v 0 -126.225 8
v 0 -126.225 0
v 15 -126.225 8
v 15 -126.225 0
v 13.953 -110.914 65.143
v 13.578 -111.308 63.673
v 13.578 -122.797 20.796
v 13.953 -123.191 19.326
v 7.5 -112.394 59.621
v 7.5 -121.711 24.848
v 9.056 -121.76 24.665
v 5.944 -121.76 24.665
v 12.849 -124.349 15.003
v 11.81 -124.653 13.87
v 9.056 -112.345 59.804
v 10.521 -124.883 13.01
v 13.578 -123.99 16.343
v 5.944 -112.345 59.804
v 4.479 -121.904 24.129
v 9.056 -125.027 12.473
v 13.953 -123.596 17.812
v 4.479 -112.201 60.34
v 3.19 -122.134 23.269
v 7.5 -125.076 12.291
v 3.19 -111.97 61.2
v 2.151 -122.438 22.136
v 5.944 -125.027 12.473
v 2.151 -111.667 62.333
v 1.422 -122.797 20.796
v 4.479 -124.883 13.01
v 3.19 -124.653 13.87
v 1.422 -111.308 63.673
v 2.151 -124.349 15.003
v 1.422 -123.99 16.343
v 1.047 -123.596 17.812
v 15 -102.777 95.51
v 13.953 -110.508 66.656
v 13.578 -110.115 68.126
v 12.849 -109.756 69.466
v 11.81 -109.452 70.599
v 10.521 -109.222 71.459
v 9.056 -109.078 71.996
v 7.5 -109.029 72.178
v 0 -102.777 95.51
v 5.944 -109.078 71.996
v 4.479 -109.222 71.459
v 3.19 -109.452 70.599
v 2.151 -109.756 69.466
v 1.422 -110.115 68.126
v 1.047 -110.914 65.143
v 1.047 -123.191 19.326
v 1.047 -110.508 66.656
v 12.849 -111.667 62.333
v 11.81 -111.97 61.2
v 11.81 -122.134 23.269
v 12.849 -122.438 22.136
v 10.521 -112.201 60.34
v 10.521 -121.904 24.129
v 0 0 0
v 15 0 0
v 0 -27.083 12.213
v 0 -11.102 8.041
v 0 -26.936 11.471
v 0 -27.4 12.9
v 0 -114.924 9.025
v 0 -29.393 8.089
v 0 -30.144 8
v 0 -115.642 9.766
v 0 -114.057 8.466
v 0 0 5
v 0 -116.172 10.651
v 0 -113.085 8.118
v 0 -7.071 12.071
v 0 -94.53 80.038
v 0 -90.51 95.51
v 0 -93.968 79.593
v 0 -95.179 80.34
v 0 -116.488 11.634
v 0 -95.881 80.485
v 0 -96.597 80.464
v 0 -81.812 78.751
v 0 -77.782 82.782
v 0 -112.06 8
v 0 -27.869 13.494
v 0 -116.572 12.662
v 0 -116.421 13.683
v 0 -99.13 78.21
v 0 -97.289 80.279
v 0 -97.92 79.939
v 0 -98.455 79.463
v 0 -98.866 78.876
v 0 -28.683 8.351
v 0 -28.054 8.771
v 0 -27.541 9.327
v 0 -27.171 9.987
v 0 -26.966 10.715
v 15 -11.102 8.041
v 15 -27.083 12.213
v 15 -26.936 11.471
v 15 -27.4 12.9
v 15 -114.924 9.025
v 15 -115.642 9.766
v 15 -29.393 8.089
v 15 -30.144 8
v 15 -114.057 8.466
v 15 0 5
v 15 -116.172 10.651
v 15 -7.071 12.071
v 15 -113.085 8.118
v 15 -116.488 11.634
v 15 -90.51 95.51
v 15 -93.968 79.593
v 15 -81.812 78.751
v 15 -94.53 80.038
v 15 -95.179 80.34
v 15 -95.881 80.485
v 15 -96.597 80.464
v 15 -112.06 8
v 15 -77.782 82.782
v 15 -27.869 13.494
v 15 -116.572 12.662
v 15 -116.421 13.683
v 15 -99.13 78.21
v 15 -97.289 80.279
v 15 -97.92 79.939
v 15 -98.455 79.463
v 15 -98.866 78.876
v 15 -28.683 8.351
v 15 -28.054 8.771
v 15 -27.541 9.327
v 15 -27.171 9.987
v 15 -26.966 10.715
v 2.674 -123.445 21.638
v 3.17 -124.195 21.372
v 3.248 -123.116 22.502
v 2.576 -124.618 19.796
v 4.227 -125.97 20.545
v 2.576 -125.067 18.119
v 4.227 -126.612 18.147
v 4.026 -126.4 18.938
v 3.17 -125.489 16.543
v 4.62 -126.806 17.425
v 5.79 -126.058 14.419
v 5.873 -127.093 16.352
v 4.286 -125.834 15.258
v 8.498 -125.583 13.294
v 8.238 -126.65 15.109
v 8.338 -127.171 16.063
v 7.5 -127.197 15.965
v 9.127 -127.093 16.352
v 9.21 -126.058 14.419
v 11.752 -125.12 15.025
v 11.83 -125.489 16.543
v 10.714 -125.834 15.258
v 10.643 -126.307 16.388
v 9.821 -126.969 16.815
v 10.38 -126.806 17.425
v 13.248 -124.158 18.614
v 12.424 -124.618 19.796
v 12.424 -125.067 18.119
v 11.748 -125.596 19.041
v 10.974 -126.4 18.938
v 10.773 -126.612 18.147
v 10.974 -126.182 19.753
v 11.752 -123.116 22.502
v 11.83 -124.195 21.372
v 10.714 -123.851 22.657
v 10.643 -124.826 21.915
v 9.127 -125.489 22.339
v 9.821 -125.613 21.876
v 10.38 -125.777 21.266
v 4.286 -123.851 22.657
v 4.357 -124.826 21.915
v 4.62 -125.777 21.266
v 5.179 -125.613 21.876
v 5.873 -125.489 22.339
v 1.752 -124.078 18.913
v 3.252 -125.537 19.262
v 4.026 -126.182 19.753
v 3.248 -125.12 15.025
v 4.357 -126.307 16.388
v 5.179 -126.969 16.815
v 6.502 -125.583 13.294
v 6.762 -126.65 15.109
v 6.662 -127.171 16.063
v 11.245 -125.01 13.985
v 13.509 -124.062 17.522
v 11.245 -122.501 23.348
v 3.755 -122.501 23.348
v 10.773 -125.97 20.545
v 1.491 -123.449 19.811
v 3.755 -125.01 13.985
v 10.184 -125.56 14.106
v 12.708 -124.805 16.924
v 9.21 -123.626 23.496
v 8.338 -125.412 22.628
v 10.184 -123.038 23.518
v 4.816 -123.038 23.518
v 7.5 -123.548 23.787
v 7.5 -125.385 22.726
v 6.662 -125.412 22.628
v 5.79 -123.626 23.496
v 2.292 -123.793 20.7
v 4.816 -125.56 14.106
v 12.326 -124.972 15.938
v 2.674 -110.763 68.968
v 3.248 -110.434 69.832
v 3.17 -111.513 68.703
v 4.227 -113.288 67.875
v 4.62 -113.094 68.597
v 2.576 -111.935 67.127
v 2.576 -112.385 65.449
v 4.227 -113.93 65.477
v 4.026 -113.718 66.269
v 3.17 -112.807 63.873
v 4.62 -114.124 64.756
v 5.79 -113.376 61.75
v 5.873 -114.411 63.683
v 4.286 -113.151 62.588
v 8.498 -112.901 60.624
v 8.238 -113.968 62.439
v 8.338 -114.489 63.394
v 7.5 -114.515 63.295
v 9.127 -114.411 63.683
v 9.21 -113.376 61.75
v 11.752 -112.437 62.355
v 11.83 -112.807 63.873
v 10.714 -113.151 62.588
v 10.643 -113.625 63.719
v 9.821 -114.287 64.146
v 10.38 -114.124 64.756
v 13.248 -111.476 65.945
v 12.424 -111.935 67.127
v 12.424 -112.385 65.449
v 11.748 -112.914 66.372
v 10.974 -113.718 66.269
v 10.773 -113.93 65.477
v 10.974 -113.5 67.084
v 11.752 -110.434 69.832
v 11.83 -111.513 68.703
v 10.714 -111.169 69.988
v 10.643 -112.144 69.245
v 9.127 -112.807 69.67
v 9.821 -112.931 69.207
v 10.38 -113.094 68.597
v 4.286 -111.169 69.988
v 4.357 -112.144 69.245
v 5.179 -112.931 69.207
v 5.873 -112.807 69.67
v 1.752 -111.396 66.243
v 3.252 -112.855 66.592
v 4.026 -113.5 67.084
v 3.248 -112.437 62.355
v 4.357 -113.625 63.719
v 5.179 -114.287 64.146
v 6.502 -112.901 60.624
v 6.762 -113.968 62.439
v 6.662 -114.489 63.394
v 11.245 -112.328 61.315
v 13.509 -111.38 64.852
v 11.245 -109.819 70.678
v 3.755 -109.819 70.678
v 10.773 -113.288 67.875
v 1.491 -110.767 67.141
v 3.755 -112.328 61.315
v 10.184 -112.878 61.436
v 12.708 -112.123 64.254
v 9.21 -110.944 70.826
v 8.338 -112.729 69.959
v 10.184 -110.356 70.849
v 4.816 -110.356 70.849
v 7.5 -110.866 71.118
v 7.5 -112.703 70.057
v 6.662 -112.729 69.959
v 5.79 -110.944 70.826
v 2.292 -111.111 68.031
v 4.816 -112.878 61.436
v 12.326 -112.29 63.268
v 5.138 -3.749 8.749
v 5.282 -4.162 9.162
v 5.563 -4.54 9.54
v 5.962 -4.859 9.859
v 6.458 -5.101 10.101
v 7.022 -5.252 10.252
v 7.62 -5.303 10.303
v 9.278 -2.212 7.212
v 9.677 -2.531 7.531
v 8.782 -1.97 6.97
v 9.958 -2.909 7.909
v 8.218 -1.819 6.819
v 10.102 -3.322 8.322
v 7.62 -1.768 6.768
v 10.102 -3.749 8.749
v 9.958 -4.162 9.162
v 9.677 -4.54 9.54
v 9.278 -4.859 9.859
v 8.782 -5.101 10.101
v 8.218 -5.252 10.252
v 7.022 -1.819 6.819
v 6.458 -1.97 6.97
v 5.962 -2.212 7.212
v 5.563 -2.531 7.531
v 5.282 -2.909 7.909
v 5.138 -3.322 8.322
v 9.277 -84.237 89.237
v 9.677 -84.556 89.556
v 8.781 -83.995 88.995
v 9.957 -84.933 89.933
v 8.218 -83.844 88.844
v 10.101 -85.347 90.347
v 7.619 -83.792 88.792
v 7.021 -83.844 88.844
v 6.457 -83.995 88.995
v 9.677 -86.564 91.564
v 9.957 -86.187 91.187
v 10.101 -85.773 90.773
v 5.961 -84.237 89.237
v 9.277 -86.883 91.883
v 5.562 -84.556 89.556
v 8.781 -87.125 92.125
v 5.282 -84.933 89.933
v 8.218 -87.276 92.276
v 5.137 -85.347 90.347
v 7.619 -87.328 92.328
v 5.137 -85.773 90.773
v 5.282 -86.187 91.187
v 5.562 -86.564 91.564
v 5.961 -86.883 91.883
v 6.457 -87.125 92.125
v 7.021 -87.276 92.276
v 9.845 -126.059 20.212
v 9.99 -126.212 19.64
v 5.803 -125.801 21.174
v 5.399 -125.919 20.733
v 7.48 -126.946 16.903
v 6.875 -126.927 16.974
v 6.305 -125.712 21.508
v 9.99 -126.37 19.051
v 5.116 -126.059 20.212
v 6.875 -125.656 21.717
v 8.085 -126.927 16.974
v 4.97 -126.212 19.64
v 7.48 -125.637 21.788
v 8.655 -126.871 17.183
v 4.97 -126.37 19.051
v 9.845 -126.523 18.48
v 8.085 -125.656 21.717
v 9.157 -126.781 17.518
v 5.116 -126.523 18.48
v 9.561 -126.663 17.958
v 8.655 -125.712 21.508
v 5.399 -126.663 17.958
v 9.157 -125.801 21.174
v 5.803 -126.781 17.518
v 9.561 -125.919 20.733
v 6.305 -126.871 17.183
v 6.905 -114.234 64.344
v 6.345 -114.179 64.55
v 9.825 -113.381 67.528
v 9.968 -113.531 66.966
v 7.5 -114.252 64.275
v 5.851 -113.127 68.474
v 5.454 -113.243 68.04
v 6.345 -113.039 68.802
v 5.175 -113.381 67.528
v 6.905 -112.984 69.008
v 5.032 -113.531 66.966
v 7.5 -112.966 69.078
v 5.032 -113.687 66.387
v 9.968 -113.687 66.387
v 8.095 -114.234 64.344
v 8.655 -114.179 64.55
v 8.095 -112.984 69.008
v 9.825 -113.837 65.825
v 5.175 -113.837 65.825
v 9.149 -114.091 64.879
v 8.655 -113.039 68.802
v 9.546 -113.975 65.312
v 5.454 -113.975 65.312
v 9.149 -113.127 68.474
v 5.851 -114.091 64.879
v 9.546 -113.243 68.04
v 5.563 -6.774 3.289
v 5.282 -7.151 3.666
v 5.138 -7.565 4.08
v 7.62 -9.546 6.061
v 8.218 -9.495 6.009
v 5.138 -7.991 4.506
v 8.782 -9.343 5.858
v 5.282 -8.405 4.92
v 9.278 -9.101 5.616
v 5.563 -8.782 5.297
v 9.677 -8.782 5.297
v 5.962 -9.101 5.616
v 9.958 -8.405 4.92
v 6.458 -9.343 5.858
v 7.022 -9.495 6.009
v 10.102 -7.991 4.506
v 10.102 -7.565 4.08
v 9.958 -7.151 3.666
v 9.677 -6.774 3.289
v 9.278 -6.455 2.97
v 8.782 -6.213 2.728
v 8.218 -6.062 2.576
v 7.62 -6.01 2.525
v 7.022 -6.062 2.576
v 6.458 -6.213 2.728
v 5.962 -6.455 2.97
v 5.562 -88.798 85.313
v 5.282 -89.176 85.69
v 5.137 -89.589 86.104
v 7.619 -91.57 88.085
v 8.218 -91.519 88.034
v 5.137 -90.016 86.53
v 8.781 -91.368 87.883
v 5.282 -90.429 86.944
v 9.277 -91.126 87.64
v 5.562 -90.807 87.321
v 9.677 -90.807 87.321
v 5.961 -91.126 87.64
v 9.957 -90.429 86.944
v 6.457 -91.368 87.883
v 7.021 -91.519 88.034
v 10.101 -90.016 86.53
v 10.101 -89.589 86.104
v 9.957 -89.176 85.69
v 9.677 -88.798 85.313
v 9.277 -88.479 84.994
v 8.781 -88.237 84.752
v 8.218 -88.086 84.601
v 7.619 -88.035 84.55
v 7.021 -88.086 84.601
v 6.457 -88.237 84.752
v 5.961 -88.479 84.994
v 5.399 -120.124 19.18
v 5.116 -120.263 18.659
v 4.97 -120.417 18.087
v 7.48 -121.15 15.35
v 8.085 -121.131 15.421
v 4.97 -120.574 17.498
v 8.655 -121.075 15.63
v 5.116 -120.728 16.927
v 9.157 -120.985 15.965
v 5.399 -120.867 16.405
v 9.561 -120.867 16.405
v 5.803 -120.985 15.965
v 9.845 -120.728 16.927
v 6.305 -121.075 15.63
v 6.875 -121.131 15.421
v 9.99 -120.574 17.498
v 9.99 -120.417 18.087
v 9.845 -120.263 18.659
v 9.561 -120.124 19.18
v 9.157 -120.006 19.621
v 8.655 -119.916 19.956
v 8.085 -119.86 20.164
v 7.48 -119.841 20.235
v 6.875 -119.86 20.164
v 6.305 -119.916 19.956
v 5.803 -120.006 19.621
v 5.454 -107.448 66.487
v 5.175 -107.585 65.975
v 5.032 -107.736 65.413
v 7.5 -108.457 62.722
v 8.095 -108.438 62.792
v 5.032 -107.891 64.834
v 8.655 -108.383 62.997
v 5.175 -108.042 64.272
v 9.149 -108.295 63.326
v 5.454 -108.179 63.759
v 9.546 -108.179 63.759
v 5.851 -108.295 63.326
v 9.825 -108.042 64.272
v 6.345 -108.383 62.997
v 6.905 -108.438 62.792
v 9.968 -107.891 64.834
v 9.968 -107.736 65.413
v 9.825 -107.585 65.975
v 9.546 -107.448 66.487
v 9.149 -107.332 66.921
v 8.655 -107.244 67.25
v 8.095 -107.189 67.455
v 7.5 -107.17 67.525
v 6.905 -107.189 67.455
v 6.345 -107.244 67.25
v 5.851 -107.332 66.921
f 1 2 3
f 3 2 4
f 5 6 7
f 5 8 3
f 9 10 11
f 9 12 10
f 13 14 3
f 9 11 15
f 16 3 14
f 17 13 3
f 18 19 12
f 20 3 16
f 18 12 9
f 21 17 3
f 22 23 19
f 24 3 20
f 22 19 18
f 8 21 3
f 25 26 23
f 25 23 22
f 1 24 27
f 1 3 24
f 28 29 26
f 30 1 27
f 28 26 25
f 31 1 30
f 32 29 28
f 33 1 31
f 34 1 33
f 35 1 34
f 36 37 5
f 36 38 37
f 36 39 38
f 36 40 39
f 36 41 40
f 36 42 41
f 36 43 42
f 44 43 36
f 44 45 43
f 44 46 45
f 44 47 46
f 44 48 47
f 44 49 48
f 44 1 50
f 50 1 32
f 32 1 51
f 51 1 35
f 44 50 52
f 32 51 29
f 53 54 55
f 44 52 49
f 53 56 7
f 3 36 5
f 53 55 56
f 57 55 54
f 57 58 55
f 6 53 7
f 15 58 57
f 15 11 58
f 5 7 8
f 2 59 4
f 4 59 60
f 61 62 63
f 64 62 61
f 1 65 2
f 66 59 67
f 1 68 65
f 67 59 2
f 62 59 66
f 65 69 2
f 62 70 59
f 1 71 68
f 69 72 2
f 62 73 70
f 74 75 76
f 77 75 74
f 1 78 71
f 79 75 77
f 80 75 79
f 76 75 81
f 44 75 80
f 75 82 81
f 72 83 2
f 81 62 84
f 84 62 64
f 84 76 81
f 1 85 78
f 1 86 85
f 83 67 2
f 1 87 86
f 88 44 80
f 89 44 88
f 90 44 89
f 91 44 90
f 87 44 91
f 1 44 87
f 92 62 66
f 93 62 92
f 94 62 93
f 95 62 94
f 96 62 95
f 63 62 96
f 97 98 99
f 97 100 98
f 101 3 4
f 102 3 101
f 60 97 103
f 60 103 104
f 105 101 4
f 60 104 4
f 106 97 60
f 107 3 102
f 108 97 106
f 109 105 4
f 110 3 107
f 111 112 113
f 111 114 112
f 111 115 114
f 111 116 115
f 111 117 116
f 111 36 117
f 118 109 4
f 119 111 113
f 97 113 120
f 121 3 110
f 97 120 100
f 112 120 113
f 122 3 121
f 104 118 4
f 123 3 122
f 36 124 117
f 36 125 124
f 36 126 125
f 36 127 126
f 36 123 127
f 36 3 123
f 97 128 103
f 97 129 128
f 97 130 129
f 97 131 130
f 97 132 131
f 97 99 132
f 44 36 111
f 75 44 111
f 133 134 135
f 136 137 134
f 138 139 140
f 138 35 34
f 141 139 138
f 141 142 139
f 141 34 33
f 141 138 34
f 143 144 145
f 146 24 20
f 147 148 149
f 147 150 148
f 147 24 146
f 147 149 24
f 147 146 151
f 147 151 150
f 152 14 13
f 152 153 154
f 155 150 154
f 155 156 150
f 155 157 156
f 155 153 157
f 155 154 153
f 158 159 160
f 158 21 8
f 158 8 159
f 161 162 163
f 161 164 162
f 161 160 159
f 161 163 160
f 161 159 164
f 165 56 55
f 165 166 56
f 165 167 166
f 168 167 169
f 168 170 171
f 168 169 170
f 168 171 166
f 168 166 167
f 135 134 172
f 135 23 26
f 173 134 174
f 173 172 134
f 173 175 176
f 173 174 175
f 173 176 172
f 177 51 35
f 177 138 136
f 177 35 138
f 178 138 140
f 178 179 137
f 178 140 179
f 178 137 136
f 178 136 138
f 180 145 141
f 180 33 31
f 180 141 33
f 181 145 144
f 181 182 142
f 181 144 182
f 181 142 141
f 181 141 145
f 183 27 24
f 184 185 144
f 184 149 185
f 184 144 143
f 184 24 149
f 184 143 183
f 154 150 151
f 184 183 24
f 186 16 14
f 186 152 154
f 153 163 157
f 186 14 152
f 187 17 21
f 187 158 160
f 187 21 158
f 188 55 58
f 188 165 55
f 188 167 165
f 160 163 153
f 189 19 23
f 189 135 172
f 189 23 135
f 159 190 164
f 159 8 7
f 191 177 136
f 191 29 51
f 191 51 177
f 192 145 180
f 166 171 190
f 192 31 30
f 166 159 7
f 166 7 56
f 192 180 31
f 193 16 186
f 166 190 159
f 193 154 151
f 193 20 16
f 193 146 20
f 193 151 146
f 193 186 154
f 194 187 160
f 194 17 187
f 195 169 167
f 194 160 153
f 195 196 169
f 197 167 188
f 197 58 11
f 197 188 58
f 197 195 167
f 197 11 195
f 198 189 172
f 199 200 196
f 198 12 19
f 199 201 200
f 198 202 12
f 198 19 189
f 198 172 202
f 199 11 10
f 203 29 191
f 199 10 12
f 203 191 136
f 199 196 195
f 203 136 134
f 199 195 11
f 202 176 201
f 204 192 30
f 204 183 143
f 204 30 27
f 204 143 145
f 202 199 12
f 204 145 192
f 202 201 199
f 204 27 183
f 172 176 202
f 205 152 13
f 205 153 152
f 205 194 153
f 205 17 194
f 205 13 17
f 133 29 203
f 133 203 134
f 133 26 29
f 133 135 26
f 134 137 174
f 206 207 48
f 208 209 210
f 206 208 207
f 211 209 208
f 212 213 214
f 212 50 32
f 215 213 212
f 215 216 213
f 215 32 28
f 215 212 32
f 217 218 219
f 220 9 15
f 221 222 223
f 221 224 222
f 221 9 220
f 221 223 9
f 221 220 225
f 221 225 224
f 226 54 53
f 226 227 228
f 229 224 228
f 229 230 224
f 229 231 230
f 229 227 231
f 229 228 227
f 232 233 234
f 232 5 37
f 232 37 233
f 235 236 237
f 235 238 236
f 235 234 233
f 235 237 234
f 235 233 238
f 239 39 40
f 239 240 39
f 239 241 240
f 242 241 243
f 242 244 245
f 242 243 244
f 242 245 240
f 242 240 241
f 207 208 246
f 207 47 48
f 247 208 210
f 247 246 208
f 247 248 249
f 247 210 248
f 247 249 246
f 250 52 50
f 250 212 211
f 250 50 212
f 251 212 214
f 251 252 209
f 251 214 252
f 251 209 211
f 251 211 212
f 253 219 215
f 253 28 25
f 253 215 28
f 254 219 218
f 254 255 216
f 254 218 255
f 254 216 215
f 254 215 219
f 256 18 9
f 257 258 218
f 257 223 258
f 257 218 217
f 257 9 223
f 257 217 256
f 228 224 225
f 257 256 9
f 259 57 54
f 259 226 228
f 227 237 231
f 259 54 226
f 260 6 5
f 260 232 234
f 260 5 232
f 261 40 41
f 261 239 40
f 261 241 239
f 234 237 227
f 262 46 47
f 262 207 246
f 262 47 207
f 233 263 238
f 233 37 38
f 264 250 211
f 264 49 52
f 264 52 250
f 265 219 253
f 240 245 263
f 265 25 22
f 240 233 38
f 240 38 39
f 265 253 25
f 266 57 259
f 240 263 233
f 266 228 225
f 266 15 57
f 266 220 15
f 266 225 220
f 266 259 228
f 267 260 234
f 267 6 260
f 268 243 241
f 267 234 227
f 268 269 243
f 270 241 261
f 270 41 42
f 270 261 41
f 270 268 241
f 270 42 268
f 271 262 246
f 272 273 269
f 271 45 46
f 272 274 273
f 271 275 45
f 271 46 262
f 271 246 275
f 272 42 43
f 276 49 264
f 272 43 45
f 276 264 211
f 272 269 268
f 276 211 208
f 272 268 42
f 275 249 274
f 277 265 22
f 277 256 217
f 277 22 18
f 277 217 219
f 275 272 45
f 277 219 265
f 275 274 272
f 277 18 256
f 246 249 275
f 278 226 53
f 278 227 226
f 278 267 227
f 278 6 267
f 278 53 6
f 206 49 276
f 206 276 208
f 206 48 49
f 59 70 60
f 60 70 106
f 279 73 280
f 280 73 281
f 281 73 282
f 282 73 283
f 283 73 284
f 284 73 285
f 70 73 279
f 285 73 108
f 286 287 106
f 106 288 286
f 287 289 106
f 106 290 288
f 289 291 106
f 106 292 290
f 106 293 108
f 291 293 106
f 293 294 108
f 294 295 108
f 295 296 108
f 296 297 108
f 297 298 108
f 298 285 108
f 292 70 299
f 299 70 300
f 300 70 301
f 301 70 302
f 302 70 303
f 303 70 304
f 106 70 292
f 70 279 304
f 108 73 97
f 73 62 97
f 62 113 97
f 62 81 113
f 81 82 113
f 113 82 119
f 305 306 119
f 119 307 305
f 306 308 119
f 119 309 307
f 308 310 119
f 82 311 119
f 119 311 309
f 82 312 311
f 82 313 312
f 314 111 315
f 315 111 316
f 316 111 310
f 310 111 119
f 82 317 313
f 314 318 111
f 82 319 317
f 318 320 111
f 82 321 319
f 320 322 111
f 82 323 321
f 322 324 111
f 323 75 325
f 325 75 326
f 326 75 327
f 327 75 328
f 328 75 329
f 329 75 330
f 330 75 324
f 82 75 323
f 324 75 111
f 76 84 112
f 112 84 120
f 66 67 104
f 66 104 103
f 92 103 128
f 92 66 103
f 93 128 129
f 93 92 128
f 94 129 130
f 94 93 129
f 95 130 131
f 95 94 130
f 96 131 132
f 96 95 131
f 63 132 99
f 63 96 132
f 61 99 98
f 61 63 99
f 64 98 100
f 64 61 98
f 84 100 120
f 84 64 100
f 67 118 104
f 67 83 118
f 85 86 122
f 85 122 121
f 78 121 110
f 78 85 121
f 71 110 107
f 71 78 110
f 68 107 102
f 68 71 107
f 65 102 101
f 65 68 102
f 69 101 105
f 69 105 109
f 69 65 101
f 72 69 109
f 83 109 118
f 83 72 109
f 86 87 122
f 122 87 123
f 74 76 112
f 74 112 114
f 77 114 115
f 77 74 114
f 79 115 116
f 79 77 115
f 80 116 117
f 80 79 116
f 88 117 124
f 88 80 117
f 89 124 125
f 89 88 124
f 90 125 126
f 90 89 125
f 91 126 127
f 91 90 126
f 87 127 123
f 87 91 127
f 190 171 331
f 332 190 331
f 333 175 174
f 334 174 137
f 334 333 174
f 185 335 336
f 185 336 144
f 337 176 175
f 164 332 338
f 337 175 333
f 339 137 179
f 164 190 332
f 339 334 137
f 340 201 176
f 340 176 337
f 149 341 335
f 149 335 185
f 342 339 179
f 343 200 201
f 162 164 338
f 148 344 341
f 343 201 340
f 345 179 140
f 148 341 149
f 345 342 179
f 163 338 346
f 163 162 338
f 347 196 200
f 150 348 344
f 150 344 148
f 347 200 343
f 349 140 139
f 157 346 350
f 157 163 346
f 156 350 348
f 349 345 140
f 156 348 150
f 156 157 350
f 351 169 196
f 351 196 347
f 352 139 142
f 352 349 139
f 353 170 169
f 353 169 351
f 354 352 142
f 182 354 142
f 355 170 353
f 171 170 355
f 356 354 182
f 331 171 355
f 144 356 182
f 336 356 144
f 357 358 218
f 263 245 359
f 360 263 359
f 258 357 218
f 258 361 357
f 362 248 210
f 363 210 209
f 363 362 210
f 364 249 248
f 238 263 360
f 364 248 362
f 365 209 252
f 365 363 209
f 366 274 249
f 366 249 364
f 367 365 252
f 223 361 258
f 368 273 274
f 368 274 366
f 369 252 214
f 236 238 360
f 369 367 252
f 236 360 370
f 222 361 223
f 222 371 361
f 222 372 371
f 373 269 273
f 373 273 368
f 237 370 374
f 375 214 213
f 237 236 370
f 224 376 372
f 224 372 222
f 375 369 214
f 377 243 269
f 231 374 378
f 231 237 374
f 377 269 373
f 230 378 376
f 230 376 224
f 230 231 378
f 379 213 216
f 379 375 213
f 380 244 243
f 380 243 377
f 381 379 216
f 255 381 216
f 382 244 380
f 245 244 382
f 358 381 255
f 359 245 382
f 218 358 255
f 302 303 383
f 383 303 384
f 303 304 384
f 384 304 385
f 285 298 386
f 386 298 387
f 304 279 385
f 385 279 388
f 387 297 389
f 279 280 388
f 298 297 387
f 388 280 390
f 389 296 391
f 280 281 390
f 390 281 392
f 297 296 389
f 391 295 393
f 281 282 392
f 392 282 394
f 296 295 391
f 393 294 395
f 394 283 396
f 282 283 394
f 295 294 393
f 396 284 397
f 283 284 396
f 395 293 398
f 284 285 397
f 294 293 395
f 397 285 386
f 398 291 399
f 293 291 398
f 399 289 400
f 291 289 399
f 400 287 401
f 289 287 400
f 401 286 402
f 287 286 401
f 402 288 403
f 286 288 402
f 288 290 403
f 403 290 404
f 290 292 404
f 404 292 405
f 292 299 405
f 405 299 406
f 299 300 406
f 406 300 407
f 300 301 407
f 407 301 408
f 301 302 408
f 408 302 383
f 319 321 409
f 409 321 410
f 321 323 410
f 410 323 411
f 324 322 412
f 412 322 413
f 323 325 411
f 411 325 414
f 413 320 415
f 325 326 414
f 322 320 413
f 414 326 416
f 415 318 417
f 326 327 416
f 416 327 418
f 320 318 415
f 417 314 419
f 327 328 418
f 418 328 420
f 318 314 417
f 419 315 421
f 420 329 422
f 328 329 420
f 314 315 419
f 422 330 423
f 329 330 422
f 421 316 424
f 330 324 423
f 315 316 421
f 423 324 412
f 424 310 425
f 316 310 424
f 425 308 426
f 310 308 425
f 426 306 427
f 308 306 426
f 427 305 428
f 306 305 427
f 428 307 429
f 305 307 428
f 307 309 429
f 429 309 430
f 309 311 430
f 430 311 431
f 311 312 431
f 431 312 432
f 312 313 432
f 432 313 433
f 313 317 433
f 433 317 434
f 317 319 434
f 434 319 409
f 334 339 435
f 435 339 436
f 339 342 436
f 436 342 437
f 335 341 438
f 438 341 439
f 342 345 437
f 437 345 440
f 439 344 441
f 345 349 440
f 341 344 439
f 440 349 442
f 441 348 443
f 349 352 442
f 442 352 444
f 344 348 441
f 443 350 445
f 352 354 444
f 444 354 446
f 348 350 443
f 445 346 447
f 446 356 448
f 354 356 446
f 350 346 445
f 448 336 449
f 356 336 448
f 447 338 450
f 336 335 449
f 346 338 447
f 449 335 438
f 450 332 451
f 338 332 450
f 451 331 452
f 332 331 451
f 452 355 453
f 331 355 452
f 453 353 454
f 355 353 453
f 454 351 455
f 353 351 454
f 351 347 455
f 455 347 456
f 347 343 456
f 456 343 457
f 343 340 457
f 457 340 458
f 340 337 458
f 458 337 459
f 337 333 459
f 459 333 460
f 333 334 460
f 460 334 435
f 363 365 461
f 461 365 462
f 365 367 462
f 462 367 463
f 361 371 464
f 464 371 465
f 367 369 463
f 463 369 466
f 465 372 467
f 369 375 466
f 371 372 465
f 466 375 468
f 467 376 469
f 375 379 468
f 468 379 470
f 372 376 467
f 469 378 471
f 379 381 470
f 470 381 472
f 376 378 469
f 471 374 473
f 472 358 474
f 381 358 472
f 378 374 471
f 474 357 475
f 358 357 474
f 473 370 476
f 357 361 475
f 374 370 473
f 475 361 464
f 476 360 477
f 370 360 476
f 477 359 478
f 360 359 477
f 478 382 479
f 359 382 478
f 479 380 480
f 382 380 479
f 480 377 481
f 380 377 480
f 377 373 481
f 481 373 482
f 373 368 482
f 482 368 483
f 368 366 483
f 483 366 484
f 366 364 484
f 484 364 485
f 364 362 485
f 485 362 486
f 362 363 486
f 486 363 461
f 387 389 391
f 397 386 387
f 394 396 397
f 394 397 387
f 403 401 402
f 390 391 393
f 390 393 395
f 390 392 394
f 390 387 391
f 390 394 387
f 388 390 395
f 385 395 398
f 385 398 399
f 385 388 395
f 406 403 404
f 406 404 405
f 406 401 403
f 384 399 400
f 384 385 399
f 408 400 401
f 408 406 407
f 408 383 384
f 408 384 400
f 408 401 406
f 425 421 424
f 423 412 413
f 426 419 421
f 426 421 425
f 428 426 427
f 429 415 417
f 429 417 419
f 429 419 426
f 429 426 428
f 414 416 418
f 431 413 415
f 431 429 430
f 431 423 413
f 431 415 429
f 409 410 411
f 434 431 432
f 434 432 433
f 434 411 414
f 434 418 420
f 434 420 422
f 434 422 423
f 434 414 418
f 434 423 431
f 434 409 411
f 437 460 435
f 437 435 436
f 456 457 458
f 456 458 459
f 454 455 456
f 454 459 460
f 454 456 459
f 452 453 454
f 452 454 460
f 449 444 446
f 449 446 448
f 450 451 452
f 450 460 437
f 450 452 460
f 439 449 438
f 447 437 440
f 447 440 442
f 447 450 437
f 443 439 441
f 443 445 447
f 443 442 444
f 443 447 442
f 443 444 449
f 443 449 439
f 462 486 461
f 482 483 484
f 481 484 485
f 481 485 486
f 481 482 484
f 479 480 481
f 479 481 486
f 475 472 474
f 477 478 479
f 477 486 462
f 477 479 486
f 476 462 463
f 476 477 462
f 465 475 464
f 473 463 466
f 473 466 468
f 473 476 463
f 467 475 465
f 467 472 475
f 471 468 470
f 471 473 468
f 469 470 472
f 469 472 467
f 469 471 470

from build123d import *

# Parameters (mm, degrees)
PAD_DEPTH       = 15
SKETCH001_R     = 2.5
POCKET_DEPTH    = 6
SKETCH002_R     = 2.486179
SKETCH002_R_2   = 2.528636
POCKET001_DEPTH = 6


with BuildPart() as part:
    # Sketch → Pad (new body)
    with BuildSketch(Plane.YZ):
        Polygon((-126.2253788048, 0), (0, 0), (0, 5), (-7.0710678119, 12.0710678119), (-11.1015764646, 8.0405591591), (-81.8122545833, 78.7512372778), (-77.7817459305, 82.7817459305), (-90.5096679919, 95.5096679919), (-102.7772339365, 95.5096679919), (-126.2253788048, 8), align=None)
        with BuildLine():
            Line((-93.9680126151, 79.5932868106), (-27.8685100548, 13.4937842503))
            ThreePointArc((-30.14411, 8), (-27.1708953887, 9.9866384892), (-27.8685100548, 13.4937842503))
            Line((-30.14411, 8), (-112.060173, 8))
            ThreePointArc((-116.4205378609, 13.6825381216), (-115.6415142719, 9.7661220673), (-112.060173, 8))
            Line((-116.4205378609, 13.6825381216), (-99.1304524836, 78.2100152169))
            ThreePointArc((-93.9680126151, 79.5932868106), (-96.9485486629, 80.3919190376), (-99.1304524836, 78.2100152169))
        make_face(mode=Mode.SUBTRACT)
    extrude(amount=PAD_DEPTH)

    # Sketch001 (on Face8 of Pad) → Pocket (cut)
    with BuildSketch(Plane(origin=(0, 2.5, 2.5), x_dir=(0, -0.7071067812, 0.7071067812), z_dir=(0, 0.7071067812, 0.7071067812))):
        with Locations((8.5355339059, 7.6199603564)):
            Circle(SKETCH001_R)
        with Locations((124.5355339037, 7.6192468054)):
            Circle(SKETCH001_R)
    extrude(amount=-POCKET_DEPTH, mode=Mode.SUBTRACT)

    # Cone → Cone (revolve)
    with BuildSketch(Plane(origin=(7.5, -123.3933483575, 18.569281518), x_dir=(0, -0.2588190451, -0.9659258263), z_dir=(-1, 0, 0))):
        Polygon((0, 0), (6.5, 0), (3.5, 3), (0, 3), align=None)
    revolve(axis=Axis((7.5, -123.3933483575, 18.569281518), (0, -0.9659258263, 0.2588190451)))

    # Cone001 → Cone001 (revolve)
    with BuildSketch(Plane(origin=(7.5, -110.7112151475, 65.8996470062), x_dir=(0, -0.2588190451, -0.9659258263), z_dir=(-1, 0, 0))):
        Polygon((0, 0), (6.5, 0), (3.5, 3), (0, 3), align=None)
    revolve(axis=Axis((7.5, -110.7112151475, 65.8996470062), (0, -0.9659258263, 0.2588190451)))

    # Sketch002 (on Face21 of Cone001) → Pocket001 (cut)
    with BuildSketch(Plane(origin=(7.5, -113.6089926263, 66.6761041415), x_dir=(0, -0.2588190451, -0.9659258263), z_dir=(0, -0.9659258263, 0.2588190451))):
        Circle(SKETCH002_R)
        with Locations((48.9999960198, -0.01975)):
            Circle(SKETCH002_R_2)
    extrude(amount=-POCKET001_DEPTH, mode=Mode.SUBTRACT)


solid = part.part
